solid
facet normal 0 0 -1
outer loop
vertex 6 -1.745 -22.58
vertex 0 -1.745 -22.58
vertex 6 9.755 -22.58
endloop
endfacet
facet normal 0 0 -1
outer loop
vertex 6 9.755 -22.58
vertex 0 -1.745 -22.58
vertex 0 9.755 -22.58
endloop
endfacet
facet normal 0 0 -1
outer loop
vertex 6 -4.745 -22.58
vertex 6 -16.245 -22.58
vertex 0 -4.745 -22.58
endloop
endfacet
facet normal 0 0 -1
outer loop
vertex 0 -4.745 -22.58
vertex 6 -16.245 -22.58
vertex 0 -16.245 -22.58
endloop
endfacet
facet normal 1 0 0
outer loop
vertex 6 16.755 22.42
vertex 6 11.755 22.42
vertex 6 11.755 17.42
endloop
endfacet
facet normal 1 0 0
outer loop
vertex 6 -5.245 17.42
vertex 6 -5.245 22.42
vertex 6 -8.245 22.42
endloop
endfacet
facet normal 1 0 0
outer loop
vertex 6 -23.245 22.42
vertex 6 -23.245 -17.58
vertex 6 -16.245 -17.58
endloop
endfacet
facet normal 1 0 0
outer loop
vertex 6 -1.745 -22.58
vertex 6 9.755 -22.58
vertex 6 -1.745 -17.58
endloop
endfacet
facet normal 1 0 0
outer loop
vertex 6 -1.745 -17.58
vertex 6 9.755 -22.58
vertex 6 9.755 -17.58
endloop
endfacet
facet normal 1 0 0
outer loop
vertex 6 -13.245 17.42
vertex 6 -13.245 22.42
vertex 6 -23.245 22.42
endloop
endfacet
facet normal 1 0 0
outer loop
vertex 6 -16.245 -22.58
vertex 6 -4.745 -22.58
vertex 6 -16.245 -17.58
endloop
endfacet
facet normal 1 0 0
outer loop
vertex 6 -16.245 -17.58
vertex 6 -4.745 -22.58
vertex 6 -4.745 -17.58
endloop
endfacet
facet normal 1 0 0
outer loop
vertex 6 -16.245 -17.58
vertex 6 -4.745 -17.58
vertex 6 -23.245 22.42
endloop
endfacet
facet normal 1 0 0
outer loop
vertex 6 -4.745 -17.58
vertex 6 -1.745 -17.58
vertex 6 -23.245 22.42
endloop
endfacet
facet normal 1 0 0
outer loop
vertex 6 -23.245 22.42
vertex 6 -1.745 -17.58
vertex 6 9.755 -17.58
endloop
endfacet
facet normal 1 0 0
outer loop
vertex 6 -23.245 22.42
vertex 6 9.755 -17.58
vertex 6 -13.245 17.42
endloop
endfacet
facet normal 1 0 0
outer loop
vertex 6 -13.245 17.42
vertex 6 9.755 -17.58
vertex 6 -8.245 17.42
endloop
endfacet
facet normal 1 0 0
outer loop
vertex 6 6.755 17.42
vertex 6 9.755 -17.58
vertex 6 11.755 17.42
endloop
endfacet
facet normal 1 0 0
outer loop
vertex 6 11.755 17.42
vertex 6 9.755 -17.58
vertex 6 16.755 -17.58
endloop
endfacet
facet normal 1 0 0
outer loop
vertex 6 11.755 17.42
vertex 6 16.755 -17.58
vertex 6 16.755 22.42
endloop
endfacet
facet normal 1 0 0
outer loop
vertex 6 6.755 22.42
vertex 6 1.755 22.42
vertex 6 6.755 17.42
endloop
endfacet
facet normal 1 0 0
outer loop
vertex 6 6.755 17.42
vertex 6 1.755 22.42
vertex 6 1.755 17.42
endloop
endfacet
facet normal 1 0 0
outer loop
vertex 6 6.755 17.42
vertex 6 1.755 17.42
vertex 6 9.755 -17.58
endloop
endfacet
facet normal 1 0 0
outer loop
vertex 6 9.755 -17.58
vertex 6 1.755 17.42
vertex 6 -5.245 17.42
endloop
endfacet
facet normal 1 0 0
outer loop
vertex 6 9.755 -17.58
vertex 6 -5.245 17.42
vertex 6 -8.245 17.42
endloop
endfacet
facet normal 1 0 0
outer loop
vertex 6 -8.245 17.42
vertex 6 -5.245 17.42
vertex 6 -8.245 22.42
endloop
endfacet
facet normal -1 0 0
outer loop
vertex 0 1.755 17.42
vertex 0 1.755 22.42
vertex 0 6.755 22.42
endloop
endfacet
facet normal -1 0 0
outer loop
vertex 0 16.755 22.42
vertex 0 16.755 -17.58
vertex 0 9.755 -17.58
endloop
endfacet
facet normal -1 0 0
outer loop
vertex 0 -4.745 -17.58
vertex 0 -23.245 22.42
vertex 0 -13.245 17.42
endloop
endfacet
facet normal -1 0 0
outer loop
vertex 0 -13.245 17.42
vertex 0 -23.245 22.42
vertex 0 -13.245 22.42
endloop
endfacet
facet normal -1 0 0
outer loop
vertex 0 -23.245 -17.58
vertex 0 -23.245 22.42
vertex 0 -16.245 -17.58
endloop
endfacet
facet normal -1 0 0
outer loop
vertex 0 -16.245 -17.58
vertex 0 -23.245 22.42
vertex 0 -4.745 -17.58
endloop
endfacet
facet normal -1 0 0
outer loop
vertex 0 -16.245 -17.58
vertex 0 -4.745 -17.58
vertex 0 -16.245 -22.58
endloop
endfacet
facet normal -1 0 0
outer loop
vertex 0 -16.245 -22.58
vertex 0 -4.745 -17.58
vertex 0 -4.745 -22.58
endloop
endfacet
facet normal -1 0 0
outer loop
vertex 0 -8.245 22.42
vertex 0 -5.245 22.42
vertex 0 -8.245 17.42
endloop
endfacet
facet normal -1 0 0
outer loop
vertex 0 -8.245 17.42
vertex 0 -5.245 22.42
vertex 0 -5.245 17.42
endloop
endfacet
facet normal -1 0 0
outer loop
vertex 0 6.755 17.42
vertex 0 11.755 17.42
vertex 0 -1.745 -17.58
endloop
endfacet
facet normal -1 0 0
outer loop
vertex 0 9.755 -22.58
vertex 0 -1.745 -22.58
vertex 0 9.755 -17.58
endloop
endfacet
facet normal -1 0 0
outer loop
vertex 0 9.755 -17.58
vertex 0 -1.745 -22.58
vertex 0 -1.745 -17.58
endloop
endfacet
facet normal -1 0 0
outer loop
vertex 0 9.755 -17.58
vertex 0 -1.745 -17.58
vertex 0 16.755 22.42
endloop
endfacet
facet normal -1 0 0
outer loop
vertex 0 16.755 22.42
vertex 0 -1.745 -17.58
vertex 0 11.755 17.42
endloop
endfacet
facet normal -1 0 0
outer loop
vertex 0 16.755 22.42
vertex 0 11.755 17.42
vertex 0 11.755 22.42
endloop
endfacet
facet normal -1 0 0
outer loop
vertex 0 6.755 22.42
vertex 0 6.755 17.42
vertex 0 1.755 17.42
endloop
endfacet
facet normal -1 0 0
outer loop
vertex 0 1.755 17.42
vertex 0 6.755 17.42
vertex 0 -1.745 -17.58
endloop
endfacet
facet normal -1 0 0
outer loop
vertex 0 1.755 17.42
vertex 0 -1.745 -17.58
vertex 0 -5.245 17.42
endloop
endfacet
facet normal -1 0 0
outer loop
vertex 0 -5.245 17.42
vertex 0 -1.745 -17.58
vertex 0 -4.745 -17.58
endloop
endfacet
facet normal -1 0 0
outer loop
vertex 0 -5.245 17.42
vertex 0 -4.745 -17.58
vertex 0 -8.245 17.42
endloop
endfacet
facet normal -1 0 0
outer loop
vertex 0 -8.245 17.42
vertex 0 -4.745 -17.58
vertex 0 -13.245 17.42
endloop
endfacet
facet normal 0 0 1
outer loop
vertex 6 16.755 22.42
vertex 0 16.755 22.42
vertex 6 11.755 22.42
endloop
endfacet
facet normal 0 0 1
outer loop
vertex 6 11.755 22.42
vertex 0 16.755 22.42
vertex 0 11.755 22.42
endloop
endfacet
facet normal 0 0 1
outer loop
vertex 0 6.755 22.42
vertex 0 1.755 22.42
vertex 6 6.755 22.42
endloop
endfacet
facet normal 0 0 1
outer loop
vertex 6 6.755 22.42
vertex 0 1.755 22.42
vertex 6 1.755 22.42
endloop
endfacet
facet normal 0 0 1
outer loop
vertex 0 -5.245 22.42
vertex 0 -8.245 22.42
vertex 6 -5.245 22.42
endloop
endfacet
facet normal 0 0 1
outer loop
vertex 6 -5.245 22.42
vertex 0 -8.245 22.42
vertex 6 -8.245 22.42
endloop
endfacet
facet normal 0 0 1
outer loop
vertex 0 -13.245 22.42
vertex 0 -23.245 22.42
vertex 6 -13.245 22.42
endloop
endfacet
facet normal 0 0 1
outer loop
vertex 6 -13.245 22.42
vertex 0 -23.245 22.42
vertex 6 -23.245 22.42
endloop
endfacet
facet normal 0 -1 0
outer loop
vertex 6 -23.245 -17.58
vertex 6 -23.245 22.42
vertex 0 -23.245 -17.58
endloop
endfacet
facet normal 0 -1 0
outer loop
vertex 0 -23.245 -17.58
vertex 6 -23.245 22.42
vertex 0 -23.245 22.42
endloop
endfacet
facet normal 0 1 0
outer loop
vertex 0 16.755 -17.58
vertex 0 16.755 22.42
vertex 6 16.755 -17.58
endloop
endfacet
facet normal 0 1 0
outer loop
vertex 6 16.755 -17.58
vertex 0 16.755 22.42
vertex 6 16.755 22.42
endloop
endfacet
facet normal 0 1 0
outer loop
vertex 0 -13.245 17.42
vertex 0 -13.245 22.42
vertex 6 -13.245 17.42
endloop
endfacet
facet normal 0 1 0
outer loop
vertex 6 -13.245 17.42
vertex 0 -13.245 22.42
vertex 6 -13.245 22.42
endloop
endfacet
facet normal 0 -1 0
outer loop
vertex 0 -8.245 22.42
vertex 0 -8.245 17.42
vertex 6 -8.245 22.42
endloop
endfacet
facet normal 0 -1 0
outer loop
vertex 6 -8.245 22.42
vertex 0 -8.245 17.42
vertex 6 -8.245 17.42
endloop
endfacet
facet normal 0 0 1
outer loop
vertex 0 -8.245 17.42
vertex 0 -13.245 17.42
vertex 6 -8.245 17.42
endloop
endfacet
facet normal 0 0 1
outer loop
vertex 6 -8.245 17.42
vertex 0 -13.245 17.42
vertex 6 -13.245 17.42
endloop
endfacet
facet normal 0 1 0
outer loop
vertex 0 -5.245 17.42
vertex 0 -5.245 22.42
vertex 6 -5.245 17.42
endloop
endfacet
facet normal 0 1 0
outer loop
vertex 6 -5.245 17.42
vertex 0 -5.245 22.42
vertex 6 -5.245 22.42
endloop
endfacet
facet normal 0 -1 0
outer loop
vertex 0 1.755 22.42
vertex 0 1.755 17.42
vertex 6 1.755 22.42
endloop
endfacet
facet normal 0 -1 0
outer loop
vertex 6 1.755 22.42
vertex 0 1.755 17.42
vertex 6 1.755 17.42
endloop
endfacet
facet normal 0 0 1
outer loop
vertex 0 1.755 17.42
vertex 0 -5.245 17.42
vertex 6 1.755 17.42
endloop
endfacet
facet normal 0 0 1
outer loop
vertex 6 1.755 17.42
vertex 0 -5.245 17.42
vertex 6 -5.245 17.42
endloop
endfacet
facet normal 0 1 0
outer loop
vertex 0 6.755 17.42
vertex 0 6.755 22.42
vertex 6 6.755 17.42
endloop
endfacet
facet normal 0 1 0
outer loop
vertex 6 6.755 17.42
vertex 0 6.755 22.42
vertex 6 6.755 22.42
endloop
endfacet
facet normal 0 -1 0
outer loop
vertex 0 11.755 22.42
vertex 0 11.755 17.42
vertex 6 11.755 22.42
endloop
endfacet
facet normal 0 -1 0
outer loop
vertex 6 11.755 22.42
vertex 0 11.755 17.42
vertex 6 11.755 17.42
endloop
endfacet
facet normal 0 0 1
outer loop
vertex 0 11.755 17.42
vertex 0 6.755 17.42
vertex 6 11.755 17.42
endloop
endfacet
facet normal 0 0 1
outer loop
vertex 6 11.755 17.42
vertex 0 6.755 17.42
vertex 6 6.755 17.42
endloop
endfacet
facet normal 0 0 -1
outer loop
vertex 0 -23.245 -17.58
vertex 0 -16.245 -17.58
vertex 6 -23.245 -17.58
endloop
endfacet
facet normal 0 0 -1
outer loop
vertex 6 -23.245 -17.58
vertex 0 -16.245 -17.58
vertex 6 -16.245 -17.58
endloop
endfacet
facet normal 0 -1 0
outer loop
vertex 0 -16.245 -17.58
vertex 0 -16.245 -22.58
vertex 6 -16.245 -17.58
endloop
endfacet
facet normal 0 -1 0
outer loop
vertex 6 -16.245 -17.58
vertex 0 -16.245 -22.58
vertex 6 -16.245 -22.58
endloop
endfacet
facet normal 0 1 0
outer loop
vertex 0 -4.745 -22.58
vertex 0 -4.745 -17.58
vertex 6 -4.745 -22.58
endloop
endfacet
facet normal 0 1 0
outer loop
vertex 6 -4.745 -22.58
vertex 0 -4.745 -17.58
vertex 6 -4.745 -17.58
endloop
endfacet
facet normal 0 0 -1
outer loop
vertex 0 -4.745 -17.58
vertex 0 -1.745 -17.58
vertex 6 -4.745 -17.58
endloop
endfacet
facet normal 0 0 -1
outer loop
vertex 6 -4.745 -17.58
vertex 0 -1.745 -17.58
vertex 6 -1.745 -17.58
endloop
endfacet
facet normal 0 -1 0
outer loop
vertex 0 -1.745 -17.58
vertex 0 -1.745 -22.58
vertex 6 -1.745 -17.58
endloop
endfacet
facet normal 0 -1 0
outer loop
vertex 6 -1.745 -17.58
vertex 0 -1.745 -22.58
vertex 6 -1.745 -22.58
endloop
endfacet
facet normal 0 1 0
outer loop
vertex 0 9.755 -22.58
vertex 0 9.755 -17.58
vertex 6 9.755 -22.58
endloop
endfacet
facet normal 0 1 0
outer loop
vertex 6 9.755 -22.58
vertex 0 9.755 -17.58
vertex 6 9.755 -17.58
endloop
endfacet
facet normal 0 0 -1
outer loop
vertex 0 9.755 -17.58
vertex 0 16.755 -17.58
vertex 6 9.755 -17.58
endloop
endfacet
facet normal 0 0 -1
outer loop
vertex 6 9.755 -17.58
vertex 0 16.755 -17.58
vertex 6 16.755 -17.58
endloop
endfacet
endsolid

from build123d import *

# Parameters (mm, degrees)
SKETCH1_W           = 45
SKETCH1_H           = 40
BOSS_EXTRUDE1_DEPTH = 6
SKETCH2_W           = 5
SKETCH2_H           = 5
SKETCH2_H_2         = 7
CUT_EXTRUDE1_DEPTH  = 6
SKETCH3_W           = 5
SKETCH3_H           = 7
SKETCH3_H_2         = 3
CUT_EXTRUDE2_DEPTH  = 6


with BuildPart() as part:
    # Sketch1 → Boss-Extrude1 (new body)
    with BuildSketch(Plane(origin=(0, 0, 0), x_dir=(0, 0, -1), z_dir=(1, 0, 0))):
        with Locations((0.079787234, -3.244680851)):
            Rectangle(SKETCH1_W, SKETCH1_H)
    extrude(amount=BOSS_EXTRUDE1_DEPTH)

    # Sketch2 → Cut-Extrude1 (cut)
    with BuildSketch(Plane(origin=(6, 0, 0), x_dir=(0, 0, -1), z_dir=(1, 0, 0))):
        with Locations((-19.920212766, 9.255319149)):
            Rectangle(SKETCH2_W, SKETCH2_H)
        with Locations((-19.920212766, -1.744680851)):
            Rectangle(SKETCH2_W, SKETCH2_H_2)
        with Locations((-19.920212766, -10.744680851)):
            Rectangle(SKETCH2_W, SKETCH2_H)
    extrude(amount=-CUT_EXTRUDE1_DEPTH, mode=Mode.SUBTRACT)

    # Sketch3 → Cut-Extrude2 (cut)
    with BuildSketch(Plane(origin=(6, 0, 0), x_dir=(0, 0, -1), z_dir=(1, 0, 0))):
        with Locations((20.079787234, 13.255319149)):
            Rectangle(SKETCH3_W, SKETCH3_H)
        with Locations((20.079787234, -3.244680851)):
            Rectangle(SKETCH3_W, SKETCH3_H_2)
        with Locations((20.079787234, -19.744680851)):
            Rectangle(SKETCH3_W, SKETCH3_H)
    extrude(amount=-CUT_EXTRUDE2_DEPTH, mode=Mode.SUBTRACT)


solid = part.part
